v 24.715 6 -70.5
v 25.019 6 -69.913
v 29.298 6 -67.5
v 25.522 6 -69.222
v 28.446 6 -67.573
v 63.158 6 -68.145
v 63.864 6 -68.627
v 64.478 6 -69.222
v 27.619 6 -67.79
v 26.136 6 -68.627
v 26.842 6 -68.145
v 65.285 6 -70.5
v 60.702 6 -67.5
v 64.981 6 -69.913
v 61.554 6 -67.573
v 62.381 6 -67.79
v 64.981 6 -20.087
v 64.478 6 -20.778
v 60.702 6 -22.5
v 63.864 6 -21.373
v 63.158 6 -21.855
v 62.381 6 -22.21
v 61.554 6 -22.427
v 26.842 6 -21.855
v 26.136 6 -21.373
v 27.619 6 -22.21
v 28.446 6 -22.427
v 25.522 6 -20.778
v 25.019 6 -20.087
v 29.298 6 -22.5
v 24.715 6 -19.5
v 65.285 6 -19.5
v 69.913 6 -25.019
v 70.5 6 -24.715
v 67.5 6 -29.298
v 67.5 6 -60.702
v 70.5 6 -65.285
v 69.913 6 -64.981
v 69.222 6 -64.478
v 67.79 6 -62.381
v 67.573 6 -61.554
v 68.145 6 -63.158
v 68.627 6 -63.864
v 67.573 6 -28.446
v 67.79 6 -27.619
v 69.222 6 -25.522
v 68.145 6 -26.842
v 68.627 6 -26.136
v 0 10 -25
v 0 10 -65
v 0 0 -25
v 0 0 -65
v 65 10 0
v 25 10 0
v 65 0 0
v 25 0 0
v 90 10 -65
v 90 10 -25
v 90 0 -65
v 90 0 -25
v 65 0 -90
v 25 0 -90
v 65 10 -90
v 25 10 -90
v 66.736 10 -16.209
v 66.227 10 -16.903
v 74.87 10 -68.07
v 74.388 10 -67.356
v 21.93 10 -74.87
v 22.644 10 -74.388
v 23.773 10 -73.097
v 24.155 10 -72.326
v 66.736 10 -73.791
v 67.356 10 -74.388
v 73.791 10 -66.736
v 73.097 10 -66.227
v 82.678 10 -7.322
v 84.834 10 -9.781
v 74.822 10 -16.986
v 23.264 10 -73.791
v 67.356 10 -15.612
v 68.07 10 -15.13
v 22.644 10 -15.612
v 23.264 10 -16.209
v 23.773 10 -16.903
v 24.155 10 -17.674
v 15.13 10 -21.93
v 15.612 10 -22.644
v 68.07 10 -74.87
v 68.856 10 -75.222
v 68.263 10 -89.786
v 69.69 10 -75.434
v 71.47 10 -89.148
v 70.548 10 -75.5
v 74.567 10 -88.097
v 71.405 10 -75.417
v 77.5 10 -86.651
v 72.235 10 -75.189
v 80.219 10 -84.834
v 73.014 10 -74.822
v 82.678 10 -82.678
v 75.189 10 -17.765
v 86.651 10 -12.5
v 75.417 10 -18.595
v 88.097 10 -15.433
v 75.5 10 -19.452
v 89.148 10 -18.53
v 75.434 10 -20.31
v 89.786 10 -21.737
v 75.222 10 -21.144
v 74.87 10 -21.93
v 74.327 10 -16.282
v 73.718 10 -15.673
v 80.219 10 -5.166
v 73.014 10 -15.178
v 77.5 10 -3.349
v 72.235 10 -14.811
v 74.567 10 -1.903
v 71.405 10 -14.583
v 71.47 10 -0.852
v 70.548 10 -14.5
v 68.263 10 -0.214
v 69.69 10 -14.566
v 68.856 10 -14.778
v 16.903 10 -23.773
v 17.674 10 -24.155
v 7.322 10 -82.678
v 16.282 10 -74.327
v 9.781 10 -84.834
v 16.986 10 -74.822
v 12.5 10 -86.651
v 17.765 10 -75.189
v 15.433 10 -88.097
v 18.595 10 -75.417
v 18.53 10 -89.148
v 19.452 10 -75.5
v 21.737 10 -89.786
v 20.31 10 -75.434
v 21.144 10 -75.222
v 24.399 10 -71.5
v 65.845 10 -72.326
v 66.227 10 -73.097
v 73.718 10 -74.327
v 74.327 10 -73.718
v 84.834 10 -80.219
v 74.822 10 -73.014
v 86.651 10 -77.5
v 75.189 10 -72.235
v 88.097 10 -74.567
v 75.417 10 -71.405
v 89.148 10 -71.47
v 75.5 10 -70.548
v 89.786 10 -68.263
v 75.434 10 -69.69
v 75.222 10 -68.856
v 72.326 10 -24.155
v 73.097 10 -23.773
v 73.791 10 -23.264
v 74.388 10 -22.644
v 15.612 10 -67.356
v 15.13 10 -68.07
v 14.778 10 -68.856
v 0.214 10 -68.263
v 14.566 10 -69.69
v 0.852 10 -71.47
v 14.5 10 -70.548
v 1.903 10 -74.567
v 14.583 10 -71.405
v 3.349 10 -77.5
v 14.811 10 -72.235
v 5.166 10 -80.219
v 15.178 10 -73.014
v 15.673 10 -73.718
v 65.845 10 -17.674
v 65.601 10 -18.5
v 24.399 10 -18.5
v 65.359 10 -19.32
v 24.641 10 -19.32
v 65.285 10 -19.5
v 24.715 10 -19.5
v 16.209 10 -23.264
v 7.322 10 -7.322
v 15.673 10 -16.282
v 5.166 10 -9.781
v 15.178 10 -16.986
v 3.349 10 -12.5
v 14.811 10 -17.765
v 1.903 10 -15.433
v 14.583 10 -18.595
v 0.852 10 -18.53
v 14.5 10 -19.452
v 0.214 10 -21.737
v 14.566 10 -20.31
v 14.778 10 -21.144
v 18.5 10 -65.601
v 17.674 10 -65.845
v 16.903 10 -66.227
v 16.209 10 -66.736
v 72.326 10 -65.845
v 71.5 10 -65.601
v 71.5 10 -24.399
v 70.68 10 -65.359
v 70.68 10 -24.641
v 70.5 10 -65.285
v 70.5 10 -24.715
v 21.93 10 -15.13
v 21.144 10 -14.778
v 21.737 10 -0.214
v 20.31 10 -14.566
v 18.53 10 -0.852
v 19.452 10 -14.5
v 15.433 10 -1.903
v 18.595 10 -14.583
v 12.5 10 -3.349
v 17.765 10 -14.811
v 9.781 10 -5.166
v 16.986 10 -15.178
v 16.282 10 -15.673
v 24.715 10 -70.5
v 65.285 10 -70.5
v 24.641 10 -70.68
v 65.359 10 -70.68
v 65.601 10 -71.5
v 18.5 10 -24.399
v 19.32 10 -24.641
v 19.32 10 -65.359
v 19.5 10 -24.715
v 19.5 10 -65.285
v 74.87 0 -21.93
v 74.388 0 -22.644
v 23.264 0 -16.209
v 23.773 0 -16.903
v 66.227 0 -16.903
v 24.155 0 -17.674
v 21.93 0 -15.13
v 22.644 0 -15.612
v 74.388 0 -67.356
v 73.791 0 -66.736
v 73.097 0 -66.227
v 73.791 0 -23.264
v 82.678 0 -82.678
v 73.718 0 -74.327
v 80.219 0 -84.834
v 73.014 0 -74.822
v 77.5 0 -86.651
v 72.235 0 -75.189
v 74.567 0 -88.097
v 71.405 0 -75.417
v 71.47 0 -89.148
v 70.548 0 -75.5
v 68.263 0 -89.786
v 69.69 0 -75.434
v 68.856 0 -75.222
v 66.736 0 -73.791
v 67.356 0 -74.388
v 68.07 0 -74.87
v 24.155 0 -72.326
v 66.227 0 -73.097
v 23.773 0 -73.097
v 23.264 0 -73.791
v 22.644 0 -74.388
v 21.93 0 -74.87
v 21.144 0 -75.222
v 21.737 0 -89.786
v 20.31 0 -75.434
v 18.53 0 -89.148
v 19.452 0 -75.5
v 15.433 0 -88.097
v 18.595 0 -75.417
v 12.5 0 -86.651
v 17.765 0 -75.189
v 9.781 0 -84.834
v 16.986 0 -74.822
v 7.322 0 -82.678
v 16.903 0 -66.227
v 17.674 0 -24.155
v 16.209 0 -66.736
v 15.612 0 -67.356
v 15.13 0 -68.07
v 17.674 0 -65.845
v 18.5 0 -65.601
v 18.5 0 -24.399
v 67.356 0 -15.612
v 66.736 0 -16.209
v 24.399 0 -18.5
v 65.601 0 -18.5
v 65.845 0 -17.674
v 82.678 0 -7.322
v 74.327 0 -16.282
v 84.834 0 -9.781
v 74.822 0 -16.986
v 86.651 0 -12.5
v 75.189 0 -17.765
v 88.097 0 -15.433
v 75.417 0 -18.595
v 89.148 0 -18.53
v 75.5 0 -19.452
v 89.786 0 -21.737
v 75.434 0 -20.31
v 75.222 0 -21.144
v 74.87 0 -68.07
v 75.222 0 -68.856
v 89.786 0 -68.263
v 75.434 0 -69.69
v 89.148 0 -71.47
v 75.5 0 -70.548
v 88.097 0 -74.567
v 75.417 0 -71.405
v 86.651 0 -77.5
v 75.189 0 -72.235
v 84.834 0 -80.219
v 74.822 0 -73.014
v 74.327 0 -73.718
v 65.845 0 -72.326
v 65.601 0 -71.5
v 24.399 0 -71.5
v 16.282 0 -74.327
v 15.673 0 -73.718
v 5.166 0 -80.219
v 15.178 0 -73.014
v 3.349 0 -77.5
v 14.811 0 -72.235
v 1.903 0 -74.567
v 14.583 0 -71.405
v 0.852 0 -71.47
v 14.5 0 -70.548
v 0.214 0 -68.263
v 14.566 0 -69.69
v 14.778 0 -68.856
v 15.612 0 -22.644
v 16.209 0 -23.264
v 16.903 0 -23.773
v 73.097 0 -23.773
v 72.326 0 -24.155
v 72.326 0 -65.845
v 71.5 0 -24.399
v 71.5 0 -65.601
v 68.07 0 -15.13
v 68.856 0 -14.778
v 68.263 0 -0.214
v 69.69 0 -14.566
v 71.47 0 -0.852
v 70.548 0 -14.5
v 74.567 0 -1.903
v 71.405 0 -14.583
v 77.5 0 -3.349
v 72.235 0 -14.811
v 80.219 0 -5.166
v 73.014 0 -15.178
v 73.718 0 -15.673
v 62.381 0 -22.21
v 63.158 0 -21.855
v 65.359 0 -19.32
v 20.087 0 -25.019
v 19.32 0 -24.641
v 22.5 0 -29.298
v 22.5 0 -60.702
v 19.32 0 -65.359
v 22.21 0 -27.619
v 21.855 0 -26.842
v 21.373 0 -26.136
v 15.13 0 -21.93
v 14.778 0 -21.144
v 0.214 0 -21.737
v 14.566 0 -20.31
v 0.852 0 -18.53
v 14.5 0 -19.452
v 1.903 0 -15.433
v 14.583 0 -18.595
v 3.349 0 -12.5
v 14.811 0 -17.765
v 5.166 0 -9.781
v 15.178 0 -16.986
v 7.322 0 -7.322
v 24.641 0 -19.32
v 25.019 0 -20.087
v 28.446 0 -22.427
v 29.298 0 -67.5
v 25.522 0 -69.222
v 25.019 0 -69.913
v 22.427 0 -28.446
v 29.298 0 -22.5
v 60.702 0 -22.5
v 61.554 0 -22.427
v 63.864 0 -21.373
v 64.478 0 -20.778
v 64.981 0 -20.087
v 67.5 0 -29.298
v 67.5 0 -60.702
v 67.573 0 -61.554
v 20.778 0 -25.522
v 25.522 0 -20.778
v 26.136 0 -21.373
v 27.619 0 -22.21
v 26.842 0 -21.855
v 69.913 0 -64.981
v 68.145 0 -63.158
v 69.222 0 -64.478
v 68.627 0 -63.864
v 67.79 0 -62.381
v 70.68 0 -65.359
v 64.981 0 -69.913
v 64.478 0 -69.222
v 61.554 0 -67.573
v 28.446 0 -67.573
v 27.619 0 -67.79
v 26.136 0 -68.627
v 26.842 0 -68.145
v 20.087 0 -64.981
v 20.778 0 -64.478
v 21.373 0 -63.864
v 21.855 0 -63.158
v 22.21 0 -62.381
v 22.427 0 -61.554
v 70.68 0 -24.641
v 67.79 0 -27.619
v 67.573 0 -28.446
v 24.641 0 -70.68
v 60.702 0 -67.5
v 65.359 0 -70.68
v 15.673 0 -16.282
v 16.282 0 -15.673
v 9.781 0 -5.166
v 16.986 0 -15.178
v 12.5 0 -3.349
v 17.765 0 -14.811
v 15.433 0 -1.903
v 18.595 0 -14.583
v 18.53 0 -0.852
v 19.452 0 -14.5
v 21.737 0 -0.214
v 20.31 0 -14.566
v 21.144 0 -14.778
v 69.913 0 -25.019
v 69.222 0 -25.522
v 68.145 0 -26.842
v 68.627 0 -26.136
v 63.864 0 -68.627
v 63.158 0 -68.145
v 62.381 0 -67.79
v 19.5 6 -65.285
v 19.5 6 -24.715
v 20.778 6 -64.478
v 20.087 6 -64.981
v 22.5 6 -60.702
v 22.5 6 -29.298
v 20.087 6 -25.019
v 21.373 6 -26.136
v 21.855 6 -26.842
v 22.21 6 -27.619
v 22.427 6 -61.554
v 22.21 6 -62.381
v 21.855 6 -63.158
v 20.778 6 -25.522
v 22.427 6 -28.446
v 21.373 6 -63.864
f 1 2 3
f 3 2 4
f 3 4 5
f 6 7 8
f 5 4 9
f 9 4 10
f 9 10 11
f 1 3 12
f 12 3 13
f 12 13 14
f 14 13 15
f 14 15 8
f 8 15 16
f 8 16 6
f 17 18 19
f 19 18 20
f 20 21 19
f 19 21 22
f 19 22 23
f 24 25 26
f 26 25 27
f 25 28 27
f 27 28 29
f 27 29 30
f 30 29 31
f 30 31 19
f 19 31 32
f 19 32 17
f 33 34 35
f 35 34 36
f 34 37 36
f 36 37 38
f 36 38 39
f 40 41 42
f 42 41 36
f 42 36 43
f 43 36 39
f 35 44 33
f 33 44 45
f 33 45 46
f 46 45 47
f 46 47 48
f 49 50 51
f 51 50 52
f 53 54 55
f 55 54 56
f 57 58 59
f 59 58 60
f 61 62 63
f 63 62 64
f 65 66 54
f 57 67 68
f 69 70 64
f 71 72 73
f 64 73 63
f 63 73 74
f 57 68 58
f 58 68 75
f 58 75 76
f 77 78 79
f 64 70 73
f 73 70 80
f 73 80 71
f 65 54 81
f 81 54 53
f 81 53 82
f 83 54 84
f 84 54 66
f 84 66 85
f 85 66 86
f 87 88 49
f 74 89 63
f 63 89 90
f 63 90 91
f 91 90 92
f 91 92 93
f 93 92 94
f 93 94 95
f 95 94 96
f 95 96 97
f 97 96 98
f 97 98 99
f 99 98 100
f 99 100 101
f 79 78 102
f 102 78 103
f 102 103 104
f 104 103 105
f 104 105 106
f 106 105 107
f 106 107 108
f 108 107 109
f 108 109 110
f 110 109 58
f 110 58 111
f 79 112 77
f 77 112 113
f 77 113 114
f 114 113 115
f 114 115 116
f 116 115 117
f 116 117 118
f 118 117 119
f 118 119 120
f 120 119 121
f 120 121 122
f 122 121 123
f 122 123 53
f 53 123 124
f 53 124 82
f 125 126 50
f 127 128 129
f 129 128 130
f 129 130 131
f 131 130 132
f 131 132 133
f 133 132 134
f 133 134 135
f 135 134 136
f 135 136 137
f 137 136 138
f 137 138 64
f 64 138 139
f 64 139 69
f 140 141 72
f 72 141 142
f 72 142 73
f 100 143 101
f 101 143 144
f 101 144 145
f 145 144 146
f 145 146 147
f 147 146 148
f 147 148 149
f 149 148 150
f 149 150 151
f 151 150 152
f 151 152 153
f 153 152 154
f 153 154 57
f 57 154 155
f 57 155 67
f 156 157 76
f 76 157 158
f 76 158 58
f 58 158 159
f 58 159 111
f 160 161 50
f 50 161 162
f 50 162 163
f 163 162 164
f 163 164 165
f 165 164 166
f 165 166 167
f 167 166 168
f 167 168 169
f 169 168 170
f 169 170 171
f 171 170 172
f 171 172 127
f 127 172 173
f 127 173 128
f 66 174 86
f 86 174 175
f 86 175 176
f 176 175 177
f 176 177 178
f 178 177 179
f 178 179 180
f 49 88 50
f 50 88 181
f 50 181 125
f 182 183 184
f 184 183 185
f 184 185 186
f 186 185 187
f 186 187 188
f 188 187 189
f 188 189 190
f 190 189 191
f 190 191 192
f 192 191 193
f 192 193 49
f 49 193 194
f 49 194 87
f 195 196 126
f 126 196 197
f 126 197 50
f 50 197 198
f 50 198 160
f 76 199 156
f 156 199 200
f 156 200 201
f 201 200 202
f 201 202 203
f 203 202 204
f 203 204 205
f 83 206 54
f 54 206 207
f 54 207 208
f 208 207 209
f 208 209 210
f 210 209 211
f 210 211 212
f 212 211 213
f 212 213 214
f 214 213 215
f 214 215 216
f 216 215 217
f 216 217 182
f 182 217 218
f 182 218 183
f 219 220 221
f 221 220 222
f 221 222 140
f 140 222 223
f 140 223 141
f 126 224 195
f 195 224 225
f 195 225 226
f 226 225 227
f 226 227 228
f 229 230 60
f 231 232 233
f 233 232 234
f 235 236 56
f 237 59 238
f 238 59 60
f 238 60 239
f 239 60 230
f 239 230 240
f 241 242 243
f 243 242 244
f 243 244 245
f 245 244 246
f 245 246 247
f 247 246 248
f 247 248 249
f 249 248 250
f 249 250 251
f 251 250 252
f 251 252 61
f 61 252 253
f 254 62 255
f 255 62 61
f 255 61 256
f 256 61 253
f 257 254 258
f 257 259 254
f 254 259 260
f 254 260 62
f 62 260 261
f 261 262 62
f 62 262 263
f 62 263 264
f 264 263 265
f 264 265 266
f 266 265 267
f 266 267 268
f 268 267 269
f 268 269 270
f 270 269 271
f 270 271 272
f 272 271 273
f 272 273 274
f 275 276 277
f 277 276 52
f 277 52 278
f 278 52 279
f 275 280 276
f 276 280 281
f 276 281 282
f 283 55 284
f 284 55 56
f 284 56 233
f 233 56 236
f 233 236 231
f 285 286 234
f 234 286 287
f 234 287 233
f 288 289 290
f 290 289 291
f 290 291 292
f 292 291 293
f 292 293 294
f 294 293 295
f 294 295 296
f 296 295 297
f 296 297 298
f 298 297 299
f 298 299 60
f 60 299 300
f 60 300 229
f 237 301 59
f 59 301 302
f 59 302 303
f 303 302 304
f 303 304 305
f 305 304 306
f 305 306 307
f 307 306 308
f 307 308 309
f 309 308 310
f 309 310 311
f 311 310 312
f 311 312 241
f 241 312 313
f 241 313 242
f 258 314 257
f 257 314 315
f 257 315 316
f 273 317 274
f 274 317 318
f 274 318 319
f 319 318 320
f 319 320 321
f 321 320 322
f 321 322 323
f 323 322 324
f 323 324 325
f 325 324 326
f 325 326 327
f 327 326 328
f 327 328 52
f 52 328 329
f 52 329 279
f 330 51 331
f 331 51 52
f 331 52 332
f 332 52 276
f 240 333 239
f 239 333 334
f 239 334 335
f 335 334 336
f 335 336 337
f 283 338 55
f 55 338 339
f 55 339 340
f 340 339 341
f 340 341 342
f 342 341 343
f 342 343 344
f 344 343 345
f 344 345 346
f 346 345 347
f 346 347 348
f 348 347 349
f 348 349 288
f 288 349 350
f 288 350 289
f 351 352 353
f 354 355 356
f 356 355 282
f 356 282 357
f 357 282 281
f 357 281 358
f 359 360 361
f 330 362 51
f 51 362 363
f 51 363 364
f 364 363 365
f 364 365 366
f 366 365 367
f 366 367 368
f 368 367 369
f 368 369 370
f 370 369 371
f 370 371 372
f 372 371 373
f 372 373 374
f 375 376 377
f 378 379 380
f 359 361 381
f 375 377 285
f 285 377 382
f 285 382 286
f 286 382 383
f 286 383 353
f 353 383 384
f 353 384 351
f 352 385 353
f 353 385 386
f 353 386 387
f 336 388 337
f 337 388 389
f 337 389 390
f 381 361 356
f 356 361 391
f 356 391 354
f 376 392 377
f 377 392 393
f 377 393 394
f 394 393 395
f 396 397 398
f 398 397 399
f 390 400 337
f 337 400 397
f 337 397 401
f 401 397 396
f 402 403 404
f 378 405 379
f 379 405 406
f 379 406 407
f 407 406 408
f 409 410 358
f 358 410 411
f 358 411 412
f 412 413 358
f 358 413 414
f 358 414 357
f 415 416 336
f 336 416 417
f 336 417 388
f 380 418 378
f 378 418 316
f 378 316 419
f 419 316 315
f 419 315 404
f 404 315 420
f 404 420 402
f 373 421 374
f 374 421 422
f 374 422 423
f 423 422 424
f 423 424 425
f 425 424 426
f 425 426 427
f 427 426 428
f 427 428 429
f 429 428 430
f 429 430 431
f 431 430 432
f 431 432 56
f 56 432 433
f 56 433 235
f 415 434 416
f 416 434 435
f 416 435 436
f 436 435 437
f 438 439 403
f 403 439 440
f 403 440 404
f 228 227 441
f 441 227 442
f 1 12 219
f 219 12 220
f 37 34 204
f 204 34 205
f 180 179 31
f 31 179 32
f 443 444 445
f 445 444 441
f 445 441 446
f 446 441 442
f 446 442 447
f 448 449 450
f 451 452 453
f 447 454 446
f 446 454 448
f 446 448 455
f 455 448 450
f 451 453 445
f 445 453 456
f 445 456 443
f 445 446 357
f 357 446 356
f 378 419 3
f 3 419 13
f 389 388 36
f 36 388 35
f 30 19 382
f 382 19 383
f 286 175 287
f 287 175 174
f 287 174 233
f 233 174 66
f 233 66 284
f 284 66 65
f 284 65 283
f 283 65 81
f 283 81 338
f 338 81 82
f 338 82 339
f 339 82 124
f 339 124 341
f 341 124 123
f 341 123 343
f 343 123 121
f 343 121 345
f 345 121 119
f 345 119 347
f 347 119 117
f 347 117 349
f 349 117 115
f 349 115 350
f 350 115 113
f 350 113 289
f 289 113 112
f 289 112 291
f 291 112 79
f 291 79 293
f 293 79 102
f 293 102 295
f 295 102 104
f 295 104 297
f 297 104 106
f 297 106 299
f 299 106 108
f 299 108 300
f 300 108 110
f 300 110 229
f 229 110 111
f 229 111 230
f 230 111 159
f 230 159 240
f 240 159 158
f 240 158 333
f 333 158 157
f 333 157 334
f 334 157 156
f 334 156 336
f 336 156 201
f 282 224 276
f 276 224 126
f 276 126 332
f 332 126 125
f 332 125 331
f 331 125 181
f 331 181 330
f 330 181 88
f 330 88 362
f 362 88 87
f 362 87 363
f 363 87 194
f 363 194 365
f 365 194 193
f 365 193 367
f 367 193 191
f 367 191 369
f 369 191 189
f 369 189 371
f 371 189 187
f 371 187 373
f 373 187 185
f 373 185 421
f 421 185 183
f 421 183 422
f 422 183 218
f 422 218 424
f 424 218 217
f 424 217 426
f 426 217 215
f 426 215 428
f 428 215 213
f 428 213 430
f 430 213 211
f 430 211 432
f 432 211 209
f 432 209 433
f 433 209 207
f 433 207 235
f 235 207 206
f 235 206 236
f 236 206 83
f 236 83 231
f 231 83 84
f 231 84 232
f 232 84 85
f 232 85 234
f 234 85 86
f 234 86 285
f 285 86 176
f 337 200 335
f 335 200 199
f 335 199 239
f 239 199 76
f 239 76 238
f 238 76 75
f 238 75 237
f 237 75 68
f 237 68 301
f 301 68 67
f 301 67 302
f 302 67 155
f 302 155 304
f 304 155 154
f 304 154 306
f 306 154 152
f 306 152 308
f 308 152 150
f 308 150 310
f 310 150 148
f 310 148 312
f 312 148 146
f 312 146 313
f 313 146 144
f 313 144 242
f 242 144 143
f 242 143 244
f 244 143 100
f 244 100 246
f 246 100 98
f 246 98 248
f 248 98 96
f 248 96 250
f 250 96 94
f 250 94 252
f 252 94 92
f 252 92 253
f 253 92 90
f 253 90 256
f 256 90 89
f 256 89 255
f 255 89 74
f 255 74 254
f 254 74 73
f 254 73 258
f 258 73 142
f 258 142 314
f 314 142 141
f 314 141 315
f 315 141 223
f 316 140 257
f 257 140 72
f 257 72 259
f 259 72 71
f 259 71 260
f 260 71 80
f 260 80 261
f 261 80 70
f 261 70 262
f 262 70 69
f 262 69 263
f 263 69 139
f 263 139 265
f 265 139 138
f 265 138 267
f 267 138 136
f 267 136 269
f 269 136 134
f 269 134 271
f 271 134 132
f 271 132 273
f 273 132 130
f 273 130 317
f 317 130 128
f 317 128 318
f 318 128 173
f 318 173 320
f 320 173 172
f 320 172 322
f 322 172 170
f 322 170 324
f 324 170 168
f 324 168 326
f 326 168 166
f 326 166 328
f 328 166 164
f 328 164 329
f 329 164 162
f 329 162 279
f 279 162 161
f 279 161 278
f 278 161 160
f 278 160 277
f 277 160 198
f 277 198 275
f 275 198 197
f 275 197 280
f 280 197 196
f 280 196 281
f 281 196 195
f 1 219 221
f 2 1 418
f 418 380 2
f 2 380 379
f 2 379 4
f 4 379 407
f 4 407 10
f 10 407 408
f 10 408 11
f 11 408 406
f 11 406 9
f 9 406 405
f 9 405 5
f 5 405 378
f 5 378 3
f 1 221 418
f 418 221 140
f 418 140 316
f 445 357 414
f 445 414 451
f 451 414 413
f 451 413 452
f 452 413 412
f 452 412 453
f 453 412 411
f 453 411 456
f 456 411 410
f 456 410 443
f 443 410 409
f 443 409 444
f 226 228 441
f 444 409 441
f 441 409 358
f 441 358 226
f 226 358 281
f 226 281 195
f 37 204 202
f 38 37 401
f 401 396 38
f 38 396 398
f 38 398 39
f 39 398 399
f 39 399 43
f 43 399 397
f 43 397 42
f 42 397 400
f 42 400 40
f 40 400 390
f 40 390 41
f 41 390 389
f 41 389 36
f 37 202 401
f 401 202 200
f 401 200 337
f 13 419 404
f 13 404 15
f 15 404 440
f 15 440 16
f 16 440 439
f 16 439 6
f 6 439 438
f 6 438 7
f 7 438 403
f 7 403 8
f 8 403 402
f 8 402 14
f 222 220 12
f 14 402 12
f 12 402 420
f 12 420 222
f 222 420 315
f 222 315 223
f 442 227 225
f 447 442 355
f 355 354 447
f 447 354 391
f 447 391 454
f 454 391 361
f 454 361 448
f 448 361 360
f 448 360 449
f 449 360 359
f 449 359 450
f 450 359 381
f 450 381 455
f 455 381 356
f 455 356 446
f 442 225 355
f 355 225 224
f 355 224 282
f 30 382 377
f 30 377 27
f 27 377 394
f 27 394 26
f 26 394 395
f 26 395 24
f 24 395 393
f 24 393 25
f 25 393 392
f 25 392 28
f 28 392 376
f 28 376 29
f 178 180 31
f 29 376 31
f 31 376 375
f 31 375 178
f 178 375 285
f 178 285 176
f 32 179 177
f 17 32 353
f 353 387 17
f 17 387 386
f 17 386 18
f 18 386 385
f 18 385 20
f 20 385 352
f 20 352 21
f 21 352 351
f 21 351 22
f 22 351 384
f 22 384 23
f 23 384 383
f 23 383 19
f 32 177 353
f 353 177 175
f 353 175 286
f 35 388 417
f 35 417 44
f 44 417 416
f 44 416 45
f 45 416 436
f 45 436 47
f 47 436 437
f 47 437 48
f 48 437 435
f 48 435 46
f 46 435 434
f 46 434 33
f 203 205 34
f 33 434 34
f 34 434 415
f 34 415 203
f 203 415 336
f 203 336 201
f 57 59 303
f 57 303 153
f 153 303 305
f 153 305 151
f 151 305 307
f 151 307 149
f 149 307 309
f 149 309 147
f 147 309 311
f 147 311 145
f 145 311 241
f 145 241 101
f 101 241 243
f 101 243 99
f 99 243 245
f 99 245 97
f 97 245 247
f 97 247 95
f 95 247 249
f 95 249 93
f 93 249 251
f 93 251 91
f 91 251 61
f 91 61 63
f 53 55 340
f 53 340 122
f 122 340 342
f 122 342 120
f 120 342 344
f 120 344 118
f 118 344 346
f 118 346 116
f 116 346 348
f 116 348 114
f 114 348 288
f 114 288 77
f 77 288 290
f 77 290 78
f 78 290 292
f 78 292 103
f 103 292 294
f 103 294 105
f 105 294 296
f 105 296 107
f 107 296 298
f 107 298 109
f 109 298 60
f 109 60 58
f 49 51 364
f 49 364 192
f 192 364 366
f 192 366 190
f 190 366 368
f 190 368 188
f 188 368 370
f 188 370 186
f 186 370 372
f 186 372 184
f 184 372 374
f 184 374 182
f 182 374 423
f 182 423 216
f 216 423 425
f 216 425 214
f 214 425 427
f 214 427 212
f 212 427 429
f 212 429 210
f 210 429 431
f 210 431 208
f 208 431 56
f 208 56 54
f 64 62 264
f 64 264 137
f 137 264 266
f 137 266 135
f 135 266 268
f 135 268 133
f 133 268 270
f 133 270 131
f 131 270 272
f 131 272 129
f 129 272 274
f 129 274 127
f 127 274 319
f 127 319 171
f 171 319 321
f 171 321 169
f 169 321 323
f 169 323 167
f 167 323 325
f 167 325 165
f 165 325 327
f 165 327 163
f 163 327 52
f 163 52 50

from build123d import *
from build123d.topology import SkipClean

# Parameters (mm, degrees)
CROQUIS1_W              = 90
CROQUIS1_H              = 90
SALIENTE_EXTRUIR1_DEPTH = 10
CROQUIS2_W              = 51
CROQUIS2_H              = 51
CORTAR_EXTRUIR1_DEPTH   = 4
CROQUIS3_W              = 45
CROQUIS3_H              = 45
CORTAR_EXTRUIR2_DEPTH   = 128.42056349
CROQUIS4_R              = 5
CORTAR_EXTRUIR3_DEPTH   = 128.671453348
REDONDEO1_R             = 5
REDONDEO2_R             = 25


with BuildPart() as part:
    # Croquis1 → Saliente-Extruir1 (new body)
    with BuildSketch(Plane(origin=(0, 0, 0), x_dir=(1, 0, 0), z_dir=(0, 1, 0))):
        with Locations((45, 45)):
            Rectangle(CROQUIS1_W, CROQUIS1_H)
    extrude(amount=SALIENTE_EXTRUIR1_DEPTH)

    # Croquis2 → Cortar-Extruir1 (cut)
    with BuildSketch(Plane(origin=(0, 10, 0), x_dir=(1, 0, 0), z_dir=(0, 1, 0))):
        with Locations((45, 45)):
            Rectangle(CROQUIS2_W, CROQUIS2_H)
    extrude(amount=-CORTAR_EXTRUIR1_DEPTH, mode=Mode.SUBTRACT)

    # Croquis3 → Cortar-Extruir2 (cut, through all)
    with BuildSketch(Plane(origin=(0, 6, 0), x_dir=(1, 0, 0), z_dir=(0, 1, 0))):
        with Locations((45, 45)):
            Rectangle(CROQUIS3_W, CROQUIS3_H)
    extrude(amount=-CORTAR_EXTRUIR2_DEPTH, mode=Mode.SUBTRACT)

    # Croquis4 → Cortar-Extruir3 (cut, through all)
    with SkipClean():  # the faces are left unmerged after this step: merging them gives an invalid solid
        with BuildSketch(Plane(origin=(0, 10, 0), x_dir=(1, 0, 0), z_dir=(0, 1, 0))):
            with Locations((19.5, 70.5)):
                Circle(CROQUIS4_R)
            with Locations((70.5, 70.5)):
                Circle(CROQUIS4_R)
            with Locations((19.5, 19.5)):
                Circle(CROQUIS4_R)
            with Locations((70.5, 19.5)):
                Circle(CROQUIS4_R)
        extrude(amount=-CORTAR_EXTRUIR3_DEPTH, mode=Mode.SUBTRACT)
    add(part.part.scale(1), mode=Mode.REPLACE)  # the faces are merged on a copy

    # Redondeo1
    redondeo1_edges = [part.edges().sort_by_distance(p)[0] for p in [
        (23.5, 3, -67.5),
        (22.5, 3, -66.5),
        (67.5, 3, -66.5),
        (66.5, 3, -67.5),
        (22.5, 3, -23.5),
        (23.5, 3, -22.5),
        (66.5, 3, -22.5),
        (67.5, 3, -23.5),
    ]]
    fillet(redondeo1_edges, radius=REDONDEO1_R)

    # Redondeo2
    redondeo2_edges = [part.edges().sort_by_distance(p)[0] for p in [
        (0, 5, -90),
        (90, 5, -90),
        (90, 5, 0),
        (0, 5, 0),
    ]]
    fillet(redondeo2_edges, radius=REDONDEO2_R)


solid = part.part
